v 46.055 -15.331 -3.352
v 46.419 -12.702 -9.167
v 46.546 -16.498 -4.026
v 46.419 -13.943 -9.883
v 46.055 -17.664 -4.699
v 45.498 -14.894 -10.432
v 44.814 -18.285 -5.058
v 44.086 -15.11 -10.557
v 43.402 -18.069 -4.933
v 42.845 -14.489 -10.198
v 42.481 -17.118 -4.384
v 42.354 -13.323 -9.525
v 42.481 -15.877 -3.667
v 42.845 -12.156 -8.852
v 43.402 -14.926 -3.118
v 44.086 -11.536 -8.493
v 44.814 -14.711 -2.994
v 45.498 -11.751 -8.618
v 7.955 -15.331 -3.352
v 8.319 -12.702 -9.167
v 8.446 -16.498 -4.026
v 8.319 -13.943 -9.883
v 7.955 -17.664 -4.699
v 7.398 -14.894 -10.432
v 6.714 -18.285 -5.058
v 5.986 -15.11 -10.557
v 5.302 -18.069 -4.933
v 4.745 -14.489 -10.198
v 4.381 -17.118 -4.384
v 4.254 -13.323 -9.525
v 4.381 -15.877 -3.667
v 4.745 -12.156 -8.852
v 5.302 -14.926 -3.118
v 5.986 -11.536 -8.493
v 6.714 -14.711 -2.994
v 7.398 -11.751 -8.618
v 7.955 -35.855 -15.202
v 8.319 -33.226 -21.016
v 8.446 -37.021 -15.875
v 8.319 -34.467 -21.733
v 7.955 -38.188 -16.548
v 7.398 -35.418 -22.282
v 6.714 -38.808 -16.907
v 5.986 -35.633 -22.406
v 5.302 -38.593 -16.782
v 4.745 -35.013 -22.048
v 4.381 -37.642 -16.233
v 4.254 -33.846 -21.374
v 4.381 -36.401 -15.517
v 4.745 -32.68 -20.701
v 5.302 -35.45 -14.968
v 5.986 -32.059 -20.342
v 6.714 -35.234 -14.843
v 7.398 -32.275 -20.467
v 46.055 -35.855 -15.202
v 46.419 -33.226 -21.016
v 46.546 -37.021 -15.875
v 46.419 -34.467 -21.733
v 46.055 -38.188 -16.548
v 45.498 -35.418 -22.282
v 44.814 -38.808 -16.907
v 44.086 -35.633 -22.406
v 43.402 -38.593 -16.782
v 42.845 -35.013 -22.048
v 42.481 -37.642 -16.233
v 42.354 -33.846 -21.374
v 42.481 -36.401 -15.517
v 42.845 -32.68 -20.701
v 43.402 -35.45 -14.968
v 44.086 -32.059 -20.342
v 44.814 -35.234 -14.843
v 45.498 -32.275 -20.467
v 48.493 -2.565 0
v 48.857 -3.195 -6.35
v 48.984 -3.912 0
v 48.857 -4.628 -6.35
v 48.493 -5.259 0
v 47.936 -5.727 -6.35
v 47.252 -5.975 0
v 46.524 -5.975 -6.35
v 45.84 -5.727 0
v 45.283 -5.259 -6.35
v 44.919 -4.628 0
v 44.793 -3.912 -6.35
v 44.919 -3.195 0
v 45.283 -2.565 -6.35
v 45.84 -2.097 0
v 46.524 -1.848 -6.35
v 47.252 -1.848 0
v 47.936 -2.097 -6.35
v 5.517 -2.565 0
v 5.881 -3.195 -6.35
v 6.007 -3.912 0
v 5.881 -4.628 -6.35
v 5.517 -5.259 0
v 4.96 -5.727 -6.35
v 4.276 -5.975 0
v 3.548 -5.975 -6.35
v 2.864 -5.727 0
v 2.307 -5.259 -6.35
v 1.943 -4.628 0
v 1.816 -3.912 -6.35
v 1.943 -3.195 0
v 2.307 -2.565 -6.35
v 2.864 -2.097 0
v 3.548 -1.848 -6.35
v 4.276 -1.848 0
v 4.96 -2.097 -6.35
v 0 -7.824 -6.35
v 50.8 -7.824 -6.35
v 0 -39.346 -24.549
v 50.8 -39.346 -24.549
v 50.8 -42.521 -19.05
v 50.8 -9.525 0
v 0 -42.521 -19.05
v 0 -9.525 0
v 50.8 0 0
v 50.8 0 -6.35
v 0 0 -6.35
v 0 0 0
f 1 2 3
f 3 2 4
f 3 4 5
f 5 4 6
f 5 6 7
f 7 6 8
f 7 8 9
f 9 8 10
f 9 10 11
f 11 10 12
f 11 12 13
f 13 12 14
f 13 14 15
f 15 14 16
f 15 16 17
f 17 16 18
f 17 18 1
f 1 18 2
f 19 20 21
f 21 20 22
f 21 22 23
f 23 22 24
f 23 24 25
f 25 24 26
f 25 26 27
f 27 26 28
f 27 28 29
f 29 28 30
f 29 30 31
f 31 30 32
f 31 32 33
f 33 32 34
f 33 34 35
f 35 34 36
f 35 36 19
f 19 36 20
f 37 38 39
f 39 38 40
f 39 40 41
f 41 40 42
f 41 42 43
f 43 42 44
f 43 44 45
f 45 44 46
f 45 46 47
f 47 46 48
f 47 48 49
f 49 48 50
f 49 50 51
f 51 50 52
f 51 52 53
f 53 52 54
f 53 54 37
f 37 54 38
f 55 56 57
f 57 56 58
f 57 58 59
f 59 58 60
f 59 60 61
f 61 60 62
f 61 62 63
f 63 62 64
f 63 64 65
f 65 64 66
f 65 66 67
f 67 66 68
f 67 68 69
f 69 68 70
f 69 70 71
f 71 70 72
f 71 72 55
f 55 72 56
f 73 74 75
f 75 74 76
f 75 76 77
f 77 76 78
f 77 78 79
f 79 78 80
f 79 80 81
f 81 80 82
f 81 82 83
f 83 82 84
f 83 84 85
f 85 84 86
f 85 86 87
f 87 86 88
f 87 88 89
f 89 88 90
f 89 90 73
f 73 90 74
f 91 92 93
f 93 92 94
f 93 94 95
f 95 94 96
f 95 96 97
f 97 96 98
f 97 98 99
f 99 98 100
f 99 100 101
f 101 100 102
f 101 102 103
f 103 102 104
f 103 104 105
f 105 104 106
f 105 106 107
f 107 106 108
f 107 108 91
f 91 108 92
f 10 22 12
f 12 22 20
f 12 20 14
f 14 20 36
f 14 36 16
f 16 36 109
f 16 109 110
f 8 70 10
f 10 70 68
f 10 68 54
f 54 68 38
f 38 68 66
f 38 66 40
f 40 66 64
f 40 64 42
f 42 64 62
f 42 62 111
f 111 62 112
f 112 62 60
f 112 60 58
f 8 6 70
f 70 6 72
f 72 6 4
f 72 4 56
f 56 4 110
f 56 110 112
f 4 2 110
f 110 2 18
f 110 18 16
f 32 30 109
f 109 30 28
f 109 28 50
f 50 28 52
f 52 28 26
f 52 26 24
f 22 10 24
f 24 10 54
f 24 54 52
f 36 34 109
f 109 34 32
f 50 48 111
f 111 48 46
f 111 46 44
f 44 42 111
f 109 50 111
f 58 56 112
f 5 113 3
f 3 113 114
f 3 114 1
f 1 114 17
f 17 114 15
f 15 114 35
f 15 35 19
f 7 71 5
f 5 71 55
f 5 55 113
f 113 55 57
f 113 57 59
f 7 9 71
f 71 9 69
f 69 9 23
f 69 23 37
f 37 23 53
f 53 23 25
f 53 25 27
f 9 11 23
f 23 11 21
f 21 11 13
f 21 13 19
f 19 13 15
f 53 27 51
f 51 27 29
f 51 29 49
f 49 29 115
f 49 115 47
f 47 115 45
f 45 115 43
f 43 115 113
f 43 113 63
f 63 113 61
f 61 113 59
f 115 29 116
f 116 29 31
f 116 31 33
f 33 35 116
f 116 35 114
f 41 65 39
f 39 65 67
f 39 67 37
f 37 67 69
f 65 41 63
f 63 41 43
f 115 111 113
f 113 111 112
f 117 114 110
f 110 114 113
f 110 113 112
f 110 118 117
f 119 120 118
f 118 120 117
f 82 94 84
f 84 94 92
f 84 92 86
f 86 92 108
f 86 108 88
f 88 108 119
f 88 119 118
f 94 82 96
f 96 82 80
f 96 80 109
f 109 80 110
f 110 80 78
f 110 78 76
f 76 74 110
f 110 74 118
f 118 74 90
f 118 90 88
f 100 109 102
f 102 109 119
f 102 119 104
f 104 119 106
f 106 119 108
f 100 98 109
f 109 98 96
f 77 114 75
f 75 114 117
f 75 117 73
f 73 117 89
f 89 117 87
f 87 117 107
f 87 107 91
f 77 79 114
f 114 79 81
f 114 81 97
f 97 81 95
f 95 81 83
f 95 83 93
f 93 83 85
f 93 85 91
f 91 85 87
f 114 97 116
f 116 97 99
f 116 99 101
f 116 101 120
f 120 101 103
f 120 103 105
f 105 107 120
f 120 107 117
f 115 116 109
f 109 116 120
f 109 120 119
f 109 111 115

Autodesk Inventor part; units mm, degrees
ref_plane "YZ Plane" through (0, 0, 0) normal (1, 0, 0) x (0, 1, 0)
ref_plane "XZ Plane" through (0, 0, 0) normal (0, 1, 0) x (-1, 0, 0)
sketch "Sketch1" plane through (0, 0, 0) normal (1, 0, 0) x (0, 1, 0)
  line L0 (0, 0) -> (-9.525, 0)
  line L1 (-9.525, 0) -> (-9.525, -6.35)
  line L2 (-9.525, -6.35) -> (0, -6.35)
  line L3 (0, -6.35) -> (0, 0)
  dimension "d0" = 9.525
  dimension "d1" = 6.35
extrude "Extrusion1" add sketch "Sketch1" along normal blind 50.8
ref_plane "Work Plane1" through (0, -9.525, 0) normal (0, -0.866, -0.5) x (1, 0, 0)
sketch "Sketch2" plane through (0, -9.525, 0) normal (0, -0.866, -0.5) x (1, 0, 0)
  line L0 (0, 0) -> (50.8, 0) projected
  line L1 (0, -5.4993) -> (0, -10.2618) projected
  line L2 (50.8, 0) -> (0, 0)
  line L3 (0, 0) -> (0, -6.35)
  line L4 (0, -6.35) -> (50.8, -6.35)
  line L5 (50.8, -6.35) -> (50.8, 0)
  point P0 (0, -4.7625)
  dimension "d5" = 6.35
extrude "Extrusion2" add sketch "Sketch2" along normal blind 38.1
sketch "Sketch3" plane through (50.8, 0, -6.35) normal (0, 0, -1) x (-1, 0, 0)
  line L0 (50.8, 0) -> (0, 0) projected
  line L1 (0, -7.8235) -> (0, 0) projected
  point P0 (3.9118, -3.9118)
  point P1 (46.8882, -3.9118)
  dimension "d8" = 3.9118
  dimension "d9" = 7.8235
  dimension "d10" = 3.9118
  dimension "d11" = 3.9118
  dimension "d12" = 3.9118
hole "Hole1" at (46.8882, -3.9118, -6.35) at (3.9118, -3.9118, -6.35) direction (0, 0, 1) diameter 4.191 end through all
sketch "Sketch4" plane through (50.8, -7.8235, -6.35) normal (0, 0.5, -0.866) x (-1, 0, 0)
  line L0 (0, 0) -> (50.8, 0) projected
  line L1 (0, 0) -> (0, -36.3985) projected
  line L2 (50.8, -36.3985) -> (0, -36.3985) projected
  line L3 (50.8, 0) -> (50.8, -36.3985) projected
  point P0 (50.8, 9.9504)
  point P1 (44.45, -6.35)
  point P2 (44.45, -30.0485)
  point P3 (6.35, -6.35)
  point P4 (6.35, -30.0485)
  dimension "d20" = 6.35
  dimension "d21" = 6.35
  dimension "d22" = 6.35
  dimension "d23" = 6.35
  dimension "d24" = 6.35
  dimension "d25" = 6.35
  dimension "d26" = 6.35
  dimension "d27" = 6.35
hole "Hole2" at (6.35, -13.3228, -9.525) at (6.35, -33.8463, -21.3743) at (44.45, -13.3228, -9.525) at (44.45, -33.8463, -21.3743) direction (0, -0.5, 0.866) diameter 4.191 end through all
equation "\"d8\" = 0.5 * d9"
equation "\"d10\" = d8"
equation "\"d11\" = d8"
equation "\"d12\" = d8"
equation "\"d21\" = d20"
equation "\"d22\" = d20"
equation "\"d23\" = d20"
equation "\"d24\" = d20"
equation "\"d25\" = d20"
equation "\"d26\" = d20"
equation "\"d27\" = d20"
properties part number "PaddleCollection2.1AngleBracket" material "Nylon 6/6"
